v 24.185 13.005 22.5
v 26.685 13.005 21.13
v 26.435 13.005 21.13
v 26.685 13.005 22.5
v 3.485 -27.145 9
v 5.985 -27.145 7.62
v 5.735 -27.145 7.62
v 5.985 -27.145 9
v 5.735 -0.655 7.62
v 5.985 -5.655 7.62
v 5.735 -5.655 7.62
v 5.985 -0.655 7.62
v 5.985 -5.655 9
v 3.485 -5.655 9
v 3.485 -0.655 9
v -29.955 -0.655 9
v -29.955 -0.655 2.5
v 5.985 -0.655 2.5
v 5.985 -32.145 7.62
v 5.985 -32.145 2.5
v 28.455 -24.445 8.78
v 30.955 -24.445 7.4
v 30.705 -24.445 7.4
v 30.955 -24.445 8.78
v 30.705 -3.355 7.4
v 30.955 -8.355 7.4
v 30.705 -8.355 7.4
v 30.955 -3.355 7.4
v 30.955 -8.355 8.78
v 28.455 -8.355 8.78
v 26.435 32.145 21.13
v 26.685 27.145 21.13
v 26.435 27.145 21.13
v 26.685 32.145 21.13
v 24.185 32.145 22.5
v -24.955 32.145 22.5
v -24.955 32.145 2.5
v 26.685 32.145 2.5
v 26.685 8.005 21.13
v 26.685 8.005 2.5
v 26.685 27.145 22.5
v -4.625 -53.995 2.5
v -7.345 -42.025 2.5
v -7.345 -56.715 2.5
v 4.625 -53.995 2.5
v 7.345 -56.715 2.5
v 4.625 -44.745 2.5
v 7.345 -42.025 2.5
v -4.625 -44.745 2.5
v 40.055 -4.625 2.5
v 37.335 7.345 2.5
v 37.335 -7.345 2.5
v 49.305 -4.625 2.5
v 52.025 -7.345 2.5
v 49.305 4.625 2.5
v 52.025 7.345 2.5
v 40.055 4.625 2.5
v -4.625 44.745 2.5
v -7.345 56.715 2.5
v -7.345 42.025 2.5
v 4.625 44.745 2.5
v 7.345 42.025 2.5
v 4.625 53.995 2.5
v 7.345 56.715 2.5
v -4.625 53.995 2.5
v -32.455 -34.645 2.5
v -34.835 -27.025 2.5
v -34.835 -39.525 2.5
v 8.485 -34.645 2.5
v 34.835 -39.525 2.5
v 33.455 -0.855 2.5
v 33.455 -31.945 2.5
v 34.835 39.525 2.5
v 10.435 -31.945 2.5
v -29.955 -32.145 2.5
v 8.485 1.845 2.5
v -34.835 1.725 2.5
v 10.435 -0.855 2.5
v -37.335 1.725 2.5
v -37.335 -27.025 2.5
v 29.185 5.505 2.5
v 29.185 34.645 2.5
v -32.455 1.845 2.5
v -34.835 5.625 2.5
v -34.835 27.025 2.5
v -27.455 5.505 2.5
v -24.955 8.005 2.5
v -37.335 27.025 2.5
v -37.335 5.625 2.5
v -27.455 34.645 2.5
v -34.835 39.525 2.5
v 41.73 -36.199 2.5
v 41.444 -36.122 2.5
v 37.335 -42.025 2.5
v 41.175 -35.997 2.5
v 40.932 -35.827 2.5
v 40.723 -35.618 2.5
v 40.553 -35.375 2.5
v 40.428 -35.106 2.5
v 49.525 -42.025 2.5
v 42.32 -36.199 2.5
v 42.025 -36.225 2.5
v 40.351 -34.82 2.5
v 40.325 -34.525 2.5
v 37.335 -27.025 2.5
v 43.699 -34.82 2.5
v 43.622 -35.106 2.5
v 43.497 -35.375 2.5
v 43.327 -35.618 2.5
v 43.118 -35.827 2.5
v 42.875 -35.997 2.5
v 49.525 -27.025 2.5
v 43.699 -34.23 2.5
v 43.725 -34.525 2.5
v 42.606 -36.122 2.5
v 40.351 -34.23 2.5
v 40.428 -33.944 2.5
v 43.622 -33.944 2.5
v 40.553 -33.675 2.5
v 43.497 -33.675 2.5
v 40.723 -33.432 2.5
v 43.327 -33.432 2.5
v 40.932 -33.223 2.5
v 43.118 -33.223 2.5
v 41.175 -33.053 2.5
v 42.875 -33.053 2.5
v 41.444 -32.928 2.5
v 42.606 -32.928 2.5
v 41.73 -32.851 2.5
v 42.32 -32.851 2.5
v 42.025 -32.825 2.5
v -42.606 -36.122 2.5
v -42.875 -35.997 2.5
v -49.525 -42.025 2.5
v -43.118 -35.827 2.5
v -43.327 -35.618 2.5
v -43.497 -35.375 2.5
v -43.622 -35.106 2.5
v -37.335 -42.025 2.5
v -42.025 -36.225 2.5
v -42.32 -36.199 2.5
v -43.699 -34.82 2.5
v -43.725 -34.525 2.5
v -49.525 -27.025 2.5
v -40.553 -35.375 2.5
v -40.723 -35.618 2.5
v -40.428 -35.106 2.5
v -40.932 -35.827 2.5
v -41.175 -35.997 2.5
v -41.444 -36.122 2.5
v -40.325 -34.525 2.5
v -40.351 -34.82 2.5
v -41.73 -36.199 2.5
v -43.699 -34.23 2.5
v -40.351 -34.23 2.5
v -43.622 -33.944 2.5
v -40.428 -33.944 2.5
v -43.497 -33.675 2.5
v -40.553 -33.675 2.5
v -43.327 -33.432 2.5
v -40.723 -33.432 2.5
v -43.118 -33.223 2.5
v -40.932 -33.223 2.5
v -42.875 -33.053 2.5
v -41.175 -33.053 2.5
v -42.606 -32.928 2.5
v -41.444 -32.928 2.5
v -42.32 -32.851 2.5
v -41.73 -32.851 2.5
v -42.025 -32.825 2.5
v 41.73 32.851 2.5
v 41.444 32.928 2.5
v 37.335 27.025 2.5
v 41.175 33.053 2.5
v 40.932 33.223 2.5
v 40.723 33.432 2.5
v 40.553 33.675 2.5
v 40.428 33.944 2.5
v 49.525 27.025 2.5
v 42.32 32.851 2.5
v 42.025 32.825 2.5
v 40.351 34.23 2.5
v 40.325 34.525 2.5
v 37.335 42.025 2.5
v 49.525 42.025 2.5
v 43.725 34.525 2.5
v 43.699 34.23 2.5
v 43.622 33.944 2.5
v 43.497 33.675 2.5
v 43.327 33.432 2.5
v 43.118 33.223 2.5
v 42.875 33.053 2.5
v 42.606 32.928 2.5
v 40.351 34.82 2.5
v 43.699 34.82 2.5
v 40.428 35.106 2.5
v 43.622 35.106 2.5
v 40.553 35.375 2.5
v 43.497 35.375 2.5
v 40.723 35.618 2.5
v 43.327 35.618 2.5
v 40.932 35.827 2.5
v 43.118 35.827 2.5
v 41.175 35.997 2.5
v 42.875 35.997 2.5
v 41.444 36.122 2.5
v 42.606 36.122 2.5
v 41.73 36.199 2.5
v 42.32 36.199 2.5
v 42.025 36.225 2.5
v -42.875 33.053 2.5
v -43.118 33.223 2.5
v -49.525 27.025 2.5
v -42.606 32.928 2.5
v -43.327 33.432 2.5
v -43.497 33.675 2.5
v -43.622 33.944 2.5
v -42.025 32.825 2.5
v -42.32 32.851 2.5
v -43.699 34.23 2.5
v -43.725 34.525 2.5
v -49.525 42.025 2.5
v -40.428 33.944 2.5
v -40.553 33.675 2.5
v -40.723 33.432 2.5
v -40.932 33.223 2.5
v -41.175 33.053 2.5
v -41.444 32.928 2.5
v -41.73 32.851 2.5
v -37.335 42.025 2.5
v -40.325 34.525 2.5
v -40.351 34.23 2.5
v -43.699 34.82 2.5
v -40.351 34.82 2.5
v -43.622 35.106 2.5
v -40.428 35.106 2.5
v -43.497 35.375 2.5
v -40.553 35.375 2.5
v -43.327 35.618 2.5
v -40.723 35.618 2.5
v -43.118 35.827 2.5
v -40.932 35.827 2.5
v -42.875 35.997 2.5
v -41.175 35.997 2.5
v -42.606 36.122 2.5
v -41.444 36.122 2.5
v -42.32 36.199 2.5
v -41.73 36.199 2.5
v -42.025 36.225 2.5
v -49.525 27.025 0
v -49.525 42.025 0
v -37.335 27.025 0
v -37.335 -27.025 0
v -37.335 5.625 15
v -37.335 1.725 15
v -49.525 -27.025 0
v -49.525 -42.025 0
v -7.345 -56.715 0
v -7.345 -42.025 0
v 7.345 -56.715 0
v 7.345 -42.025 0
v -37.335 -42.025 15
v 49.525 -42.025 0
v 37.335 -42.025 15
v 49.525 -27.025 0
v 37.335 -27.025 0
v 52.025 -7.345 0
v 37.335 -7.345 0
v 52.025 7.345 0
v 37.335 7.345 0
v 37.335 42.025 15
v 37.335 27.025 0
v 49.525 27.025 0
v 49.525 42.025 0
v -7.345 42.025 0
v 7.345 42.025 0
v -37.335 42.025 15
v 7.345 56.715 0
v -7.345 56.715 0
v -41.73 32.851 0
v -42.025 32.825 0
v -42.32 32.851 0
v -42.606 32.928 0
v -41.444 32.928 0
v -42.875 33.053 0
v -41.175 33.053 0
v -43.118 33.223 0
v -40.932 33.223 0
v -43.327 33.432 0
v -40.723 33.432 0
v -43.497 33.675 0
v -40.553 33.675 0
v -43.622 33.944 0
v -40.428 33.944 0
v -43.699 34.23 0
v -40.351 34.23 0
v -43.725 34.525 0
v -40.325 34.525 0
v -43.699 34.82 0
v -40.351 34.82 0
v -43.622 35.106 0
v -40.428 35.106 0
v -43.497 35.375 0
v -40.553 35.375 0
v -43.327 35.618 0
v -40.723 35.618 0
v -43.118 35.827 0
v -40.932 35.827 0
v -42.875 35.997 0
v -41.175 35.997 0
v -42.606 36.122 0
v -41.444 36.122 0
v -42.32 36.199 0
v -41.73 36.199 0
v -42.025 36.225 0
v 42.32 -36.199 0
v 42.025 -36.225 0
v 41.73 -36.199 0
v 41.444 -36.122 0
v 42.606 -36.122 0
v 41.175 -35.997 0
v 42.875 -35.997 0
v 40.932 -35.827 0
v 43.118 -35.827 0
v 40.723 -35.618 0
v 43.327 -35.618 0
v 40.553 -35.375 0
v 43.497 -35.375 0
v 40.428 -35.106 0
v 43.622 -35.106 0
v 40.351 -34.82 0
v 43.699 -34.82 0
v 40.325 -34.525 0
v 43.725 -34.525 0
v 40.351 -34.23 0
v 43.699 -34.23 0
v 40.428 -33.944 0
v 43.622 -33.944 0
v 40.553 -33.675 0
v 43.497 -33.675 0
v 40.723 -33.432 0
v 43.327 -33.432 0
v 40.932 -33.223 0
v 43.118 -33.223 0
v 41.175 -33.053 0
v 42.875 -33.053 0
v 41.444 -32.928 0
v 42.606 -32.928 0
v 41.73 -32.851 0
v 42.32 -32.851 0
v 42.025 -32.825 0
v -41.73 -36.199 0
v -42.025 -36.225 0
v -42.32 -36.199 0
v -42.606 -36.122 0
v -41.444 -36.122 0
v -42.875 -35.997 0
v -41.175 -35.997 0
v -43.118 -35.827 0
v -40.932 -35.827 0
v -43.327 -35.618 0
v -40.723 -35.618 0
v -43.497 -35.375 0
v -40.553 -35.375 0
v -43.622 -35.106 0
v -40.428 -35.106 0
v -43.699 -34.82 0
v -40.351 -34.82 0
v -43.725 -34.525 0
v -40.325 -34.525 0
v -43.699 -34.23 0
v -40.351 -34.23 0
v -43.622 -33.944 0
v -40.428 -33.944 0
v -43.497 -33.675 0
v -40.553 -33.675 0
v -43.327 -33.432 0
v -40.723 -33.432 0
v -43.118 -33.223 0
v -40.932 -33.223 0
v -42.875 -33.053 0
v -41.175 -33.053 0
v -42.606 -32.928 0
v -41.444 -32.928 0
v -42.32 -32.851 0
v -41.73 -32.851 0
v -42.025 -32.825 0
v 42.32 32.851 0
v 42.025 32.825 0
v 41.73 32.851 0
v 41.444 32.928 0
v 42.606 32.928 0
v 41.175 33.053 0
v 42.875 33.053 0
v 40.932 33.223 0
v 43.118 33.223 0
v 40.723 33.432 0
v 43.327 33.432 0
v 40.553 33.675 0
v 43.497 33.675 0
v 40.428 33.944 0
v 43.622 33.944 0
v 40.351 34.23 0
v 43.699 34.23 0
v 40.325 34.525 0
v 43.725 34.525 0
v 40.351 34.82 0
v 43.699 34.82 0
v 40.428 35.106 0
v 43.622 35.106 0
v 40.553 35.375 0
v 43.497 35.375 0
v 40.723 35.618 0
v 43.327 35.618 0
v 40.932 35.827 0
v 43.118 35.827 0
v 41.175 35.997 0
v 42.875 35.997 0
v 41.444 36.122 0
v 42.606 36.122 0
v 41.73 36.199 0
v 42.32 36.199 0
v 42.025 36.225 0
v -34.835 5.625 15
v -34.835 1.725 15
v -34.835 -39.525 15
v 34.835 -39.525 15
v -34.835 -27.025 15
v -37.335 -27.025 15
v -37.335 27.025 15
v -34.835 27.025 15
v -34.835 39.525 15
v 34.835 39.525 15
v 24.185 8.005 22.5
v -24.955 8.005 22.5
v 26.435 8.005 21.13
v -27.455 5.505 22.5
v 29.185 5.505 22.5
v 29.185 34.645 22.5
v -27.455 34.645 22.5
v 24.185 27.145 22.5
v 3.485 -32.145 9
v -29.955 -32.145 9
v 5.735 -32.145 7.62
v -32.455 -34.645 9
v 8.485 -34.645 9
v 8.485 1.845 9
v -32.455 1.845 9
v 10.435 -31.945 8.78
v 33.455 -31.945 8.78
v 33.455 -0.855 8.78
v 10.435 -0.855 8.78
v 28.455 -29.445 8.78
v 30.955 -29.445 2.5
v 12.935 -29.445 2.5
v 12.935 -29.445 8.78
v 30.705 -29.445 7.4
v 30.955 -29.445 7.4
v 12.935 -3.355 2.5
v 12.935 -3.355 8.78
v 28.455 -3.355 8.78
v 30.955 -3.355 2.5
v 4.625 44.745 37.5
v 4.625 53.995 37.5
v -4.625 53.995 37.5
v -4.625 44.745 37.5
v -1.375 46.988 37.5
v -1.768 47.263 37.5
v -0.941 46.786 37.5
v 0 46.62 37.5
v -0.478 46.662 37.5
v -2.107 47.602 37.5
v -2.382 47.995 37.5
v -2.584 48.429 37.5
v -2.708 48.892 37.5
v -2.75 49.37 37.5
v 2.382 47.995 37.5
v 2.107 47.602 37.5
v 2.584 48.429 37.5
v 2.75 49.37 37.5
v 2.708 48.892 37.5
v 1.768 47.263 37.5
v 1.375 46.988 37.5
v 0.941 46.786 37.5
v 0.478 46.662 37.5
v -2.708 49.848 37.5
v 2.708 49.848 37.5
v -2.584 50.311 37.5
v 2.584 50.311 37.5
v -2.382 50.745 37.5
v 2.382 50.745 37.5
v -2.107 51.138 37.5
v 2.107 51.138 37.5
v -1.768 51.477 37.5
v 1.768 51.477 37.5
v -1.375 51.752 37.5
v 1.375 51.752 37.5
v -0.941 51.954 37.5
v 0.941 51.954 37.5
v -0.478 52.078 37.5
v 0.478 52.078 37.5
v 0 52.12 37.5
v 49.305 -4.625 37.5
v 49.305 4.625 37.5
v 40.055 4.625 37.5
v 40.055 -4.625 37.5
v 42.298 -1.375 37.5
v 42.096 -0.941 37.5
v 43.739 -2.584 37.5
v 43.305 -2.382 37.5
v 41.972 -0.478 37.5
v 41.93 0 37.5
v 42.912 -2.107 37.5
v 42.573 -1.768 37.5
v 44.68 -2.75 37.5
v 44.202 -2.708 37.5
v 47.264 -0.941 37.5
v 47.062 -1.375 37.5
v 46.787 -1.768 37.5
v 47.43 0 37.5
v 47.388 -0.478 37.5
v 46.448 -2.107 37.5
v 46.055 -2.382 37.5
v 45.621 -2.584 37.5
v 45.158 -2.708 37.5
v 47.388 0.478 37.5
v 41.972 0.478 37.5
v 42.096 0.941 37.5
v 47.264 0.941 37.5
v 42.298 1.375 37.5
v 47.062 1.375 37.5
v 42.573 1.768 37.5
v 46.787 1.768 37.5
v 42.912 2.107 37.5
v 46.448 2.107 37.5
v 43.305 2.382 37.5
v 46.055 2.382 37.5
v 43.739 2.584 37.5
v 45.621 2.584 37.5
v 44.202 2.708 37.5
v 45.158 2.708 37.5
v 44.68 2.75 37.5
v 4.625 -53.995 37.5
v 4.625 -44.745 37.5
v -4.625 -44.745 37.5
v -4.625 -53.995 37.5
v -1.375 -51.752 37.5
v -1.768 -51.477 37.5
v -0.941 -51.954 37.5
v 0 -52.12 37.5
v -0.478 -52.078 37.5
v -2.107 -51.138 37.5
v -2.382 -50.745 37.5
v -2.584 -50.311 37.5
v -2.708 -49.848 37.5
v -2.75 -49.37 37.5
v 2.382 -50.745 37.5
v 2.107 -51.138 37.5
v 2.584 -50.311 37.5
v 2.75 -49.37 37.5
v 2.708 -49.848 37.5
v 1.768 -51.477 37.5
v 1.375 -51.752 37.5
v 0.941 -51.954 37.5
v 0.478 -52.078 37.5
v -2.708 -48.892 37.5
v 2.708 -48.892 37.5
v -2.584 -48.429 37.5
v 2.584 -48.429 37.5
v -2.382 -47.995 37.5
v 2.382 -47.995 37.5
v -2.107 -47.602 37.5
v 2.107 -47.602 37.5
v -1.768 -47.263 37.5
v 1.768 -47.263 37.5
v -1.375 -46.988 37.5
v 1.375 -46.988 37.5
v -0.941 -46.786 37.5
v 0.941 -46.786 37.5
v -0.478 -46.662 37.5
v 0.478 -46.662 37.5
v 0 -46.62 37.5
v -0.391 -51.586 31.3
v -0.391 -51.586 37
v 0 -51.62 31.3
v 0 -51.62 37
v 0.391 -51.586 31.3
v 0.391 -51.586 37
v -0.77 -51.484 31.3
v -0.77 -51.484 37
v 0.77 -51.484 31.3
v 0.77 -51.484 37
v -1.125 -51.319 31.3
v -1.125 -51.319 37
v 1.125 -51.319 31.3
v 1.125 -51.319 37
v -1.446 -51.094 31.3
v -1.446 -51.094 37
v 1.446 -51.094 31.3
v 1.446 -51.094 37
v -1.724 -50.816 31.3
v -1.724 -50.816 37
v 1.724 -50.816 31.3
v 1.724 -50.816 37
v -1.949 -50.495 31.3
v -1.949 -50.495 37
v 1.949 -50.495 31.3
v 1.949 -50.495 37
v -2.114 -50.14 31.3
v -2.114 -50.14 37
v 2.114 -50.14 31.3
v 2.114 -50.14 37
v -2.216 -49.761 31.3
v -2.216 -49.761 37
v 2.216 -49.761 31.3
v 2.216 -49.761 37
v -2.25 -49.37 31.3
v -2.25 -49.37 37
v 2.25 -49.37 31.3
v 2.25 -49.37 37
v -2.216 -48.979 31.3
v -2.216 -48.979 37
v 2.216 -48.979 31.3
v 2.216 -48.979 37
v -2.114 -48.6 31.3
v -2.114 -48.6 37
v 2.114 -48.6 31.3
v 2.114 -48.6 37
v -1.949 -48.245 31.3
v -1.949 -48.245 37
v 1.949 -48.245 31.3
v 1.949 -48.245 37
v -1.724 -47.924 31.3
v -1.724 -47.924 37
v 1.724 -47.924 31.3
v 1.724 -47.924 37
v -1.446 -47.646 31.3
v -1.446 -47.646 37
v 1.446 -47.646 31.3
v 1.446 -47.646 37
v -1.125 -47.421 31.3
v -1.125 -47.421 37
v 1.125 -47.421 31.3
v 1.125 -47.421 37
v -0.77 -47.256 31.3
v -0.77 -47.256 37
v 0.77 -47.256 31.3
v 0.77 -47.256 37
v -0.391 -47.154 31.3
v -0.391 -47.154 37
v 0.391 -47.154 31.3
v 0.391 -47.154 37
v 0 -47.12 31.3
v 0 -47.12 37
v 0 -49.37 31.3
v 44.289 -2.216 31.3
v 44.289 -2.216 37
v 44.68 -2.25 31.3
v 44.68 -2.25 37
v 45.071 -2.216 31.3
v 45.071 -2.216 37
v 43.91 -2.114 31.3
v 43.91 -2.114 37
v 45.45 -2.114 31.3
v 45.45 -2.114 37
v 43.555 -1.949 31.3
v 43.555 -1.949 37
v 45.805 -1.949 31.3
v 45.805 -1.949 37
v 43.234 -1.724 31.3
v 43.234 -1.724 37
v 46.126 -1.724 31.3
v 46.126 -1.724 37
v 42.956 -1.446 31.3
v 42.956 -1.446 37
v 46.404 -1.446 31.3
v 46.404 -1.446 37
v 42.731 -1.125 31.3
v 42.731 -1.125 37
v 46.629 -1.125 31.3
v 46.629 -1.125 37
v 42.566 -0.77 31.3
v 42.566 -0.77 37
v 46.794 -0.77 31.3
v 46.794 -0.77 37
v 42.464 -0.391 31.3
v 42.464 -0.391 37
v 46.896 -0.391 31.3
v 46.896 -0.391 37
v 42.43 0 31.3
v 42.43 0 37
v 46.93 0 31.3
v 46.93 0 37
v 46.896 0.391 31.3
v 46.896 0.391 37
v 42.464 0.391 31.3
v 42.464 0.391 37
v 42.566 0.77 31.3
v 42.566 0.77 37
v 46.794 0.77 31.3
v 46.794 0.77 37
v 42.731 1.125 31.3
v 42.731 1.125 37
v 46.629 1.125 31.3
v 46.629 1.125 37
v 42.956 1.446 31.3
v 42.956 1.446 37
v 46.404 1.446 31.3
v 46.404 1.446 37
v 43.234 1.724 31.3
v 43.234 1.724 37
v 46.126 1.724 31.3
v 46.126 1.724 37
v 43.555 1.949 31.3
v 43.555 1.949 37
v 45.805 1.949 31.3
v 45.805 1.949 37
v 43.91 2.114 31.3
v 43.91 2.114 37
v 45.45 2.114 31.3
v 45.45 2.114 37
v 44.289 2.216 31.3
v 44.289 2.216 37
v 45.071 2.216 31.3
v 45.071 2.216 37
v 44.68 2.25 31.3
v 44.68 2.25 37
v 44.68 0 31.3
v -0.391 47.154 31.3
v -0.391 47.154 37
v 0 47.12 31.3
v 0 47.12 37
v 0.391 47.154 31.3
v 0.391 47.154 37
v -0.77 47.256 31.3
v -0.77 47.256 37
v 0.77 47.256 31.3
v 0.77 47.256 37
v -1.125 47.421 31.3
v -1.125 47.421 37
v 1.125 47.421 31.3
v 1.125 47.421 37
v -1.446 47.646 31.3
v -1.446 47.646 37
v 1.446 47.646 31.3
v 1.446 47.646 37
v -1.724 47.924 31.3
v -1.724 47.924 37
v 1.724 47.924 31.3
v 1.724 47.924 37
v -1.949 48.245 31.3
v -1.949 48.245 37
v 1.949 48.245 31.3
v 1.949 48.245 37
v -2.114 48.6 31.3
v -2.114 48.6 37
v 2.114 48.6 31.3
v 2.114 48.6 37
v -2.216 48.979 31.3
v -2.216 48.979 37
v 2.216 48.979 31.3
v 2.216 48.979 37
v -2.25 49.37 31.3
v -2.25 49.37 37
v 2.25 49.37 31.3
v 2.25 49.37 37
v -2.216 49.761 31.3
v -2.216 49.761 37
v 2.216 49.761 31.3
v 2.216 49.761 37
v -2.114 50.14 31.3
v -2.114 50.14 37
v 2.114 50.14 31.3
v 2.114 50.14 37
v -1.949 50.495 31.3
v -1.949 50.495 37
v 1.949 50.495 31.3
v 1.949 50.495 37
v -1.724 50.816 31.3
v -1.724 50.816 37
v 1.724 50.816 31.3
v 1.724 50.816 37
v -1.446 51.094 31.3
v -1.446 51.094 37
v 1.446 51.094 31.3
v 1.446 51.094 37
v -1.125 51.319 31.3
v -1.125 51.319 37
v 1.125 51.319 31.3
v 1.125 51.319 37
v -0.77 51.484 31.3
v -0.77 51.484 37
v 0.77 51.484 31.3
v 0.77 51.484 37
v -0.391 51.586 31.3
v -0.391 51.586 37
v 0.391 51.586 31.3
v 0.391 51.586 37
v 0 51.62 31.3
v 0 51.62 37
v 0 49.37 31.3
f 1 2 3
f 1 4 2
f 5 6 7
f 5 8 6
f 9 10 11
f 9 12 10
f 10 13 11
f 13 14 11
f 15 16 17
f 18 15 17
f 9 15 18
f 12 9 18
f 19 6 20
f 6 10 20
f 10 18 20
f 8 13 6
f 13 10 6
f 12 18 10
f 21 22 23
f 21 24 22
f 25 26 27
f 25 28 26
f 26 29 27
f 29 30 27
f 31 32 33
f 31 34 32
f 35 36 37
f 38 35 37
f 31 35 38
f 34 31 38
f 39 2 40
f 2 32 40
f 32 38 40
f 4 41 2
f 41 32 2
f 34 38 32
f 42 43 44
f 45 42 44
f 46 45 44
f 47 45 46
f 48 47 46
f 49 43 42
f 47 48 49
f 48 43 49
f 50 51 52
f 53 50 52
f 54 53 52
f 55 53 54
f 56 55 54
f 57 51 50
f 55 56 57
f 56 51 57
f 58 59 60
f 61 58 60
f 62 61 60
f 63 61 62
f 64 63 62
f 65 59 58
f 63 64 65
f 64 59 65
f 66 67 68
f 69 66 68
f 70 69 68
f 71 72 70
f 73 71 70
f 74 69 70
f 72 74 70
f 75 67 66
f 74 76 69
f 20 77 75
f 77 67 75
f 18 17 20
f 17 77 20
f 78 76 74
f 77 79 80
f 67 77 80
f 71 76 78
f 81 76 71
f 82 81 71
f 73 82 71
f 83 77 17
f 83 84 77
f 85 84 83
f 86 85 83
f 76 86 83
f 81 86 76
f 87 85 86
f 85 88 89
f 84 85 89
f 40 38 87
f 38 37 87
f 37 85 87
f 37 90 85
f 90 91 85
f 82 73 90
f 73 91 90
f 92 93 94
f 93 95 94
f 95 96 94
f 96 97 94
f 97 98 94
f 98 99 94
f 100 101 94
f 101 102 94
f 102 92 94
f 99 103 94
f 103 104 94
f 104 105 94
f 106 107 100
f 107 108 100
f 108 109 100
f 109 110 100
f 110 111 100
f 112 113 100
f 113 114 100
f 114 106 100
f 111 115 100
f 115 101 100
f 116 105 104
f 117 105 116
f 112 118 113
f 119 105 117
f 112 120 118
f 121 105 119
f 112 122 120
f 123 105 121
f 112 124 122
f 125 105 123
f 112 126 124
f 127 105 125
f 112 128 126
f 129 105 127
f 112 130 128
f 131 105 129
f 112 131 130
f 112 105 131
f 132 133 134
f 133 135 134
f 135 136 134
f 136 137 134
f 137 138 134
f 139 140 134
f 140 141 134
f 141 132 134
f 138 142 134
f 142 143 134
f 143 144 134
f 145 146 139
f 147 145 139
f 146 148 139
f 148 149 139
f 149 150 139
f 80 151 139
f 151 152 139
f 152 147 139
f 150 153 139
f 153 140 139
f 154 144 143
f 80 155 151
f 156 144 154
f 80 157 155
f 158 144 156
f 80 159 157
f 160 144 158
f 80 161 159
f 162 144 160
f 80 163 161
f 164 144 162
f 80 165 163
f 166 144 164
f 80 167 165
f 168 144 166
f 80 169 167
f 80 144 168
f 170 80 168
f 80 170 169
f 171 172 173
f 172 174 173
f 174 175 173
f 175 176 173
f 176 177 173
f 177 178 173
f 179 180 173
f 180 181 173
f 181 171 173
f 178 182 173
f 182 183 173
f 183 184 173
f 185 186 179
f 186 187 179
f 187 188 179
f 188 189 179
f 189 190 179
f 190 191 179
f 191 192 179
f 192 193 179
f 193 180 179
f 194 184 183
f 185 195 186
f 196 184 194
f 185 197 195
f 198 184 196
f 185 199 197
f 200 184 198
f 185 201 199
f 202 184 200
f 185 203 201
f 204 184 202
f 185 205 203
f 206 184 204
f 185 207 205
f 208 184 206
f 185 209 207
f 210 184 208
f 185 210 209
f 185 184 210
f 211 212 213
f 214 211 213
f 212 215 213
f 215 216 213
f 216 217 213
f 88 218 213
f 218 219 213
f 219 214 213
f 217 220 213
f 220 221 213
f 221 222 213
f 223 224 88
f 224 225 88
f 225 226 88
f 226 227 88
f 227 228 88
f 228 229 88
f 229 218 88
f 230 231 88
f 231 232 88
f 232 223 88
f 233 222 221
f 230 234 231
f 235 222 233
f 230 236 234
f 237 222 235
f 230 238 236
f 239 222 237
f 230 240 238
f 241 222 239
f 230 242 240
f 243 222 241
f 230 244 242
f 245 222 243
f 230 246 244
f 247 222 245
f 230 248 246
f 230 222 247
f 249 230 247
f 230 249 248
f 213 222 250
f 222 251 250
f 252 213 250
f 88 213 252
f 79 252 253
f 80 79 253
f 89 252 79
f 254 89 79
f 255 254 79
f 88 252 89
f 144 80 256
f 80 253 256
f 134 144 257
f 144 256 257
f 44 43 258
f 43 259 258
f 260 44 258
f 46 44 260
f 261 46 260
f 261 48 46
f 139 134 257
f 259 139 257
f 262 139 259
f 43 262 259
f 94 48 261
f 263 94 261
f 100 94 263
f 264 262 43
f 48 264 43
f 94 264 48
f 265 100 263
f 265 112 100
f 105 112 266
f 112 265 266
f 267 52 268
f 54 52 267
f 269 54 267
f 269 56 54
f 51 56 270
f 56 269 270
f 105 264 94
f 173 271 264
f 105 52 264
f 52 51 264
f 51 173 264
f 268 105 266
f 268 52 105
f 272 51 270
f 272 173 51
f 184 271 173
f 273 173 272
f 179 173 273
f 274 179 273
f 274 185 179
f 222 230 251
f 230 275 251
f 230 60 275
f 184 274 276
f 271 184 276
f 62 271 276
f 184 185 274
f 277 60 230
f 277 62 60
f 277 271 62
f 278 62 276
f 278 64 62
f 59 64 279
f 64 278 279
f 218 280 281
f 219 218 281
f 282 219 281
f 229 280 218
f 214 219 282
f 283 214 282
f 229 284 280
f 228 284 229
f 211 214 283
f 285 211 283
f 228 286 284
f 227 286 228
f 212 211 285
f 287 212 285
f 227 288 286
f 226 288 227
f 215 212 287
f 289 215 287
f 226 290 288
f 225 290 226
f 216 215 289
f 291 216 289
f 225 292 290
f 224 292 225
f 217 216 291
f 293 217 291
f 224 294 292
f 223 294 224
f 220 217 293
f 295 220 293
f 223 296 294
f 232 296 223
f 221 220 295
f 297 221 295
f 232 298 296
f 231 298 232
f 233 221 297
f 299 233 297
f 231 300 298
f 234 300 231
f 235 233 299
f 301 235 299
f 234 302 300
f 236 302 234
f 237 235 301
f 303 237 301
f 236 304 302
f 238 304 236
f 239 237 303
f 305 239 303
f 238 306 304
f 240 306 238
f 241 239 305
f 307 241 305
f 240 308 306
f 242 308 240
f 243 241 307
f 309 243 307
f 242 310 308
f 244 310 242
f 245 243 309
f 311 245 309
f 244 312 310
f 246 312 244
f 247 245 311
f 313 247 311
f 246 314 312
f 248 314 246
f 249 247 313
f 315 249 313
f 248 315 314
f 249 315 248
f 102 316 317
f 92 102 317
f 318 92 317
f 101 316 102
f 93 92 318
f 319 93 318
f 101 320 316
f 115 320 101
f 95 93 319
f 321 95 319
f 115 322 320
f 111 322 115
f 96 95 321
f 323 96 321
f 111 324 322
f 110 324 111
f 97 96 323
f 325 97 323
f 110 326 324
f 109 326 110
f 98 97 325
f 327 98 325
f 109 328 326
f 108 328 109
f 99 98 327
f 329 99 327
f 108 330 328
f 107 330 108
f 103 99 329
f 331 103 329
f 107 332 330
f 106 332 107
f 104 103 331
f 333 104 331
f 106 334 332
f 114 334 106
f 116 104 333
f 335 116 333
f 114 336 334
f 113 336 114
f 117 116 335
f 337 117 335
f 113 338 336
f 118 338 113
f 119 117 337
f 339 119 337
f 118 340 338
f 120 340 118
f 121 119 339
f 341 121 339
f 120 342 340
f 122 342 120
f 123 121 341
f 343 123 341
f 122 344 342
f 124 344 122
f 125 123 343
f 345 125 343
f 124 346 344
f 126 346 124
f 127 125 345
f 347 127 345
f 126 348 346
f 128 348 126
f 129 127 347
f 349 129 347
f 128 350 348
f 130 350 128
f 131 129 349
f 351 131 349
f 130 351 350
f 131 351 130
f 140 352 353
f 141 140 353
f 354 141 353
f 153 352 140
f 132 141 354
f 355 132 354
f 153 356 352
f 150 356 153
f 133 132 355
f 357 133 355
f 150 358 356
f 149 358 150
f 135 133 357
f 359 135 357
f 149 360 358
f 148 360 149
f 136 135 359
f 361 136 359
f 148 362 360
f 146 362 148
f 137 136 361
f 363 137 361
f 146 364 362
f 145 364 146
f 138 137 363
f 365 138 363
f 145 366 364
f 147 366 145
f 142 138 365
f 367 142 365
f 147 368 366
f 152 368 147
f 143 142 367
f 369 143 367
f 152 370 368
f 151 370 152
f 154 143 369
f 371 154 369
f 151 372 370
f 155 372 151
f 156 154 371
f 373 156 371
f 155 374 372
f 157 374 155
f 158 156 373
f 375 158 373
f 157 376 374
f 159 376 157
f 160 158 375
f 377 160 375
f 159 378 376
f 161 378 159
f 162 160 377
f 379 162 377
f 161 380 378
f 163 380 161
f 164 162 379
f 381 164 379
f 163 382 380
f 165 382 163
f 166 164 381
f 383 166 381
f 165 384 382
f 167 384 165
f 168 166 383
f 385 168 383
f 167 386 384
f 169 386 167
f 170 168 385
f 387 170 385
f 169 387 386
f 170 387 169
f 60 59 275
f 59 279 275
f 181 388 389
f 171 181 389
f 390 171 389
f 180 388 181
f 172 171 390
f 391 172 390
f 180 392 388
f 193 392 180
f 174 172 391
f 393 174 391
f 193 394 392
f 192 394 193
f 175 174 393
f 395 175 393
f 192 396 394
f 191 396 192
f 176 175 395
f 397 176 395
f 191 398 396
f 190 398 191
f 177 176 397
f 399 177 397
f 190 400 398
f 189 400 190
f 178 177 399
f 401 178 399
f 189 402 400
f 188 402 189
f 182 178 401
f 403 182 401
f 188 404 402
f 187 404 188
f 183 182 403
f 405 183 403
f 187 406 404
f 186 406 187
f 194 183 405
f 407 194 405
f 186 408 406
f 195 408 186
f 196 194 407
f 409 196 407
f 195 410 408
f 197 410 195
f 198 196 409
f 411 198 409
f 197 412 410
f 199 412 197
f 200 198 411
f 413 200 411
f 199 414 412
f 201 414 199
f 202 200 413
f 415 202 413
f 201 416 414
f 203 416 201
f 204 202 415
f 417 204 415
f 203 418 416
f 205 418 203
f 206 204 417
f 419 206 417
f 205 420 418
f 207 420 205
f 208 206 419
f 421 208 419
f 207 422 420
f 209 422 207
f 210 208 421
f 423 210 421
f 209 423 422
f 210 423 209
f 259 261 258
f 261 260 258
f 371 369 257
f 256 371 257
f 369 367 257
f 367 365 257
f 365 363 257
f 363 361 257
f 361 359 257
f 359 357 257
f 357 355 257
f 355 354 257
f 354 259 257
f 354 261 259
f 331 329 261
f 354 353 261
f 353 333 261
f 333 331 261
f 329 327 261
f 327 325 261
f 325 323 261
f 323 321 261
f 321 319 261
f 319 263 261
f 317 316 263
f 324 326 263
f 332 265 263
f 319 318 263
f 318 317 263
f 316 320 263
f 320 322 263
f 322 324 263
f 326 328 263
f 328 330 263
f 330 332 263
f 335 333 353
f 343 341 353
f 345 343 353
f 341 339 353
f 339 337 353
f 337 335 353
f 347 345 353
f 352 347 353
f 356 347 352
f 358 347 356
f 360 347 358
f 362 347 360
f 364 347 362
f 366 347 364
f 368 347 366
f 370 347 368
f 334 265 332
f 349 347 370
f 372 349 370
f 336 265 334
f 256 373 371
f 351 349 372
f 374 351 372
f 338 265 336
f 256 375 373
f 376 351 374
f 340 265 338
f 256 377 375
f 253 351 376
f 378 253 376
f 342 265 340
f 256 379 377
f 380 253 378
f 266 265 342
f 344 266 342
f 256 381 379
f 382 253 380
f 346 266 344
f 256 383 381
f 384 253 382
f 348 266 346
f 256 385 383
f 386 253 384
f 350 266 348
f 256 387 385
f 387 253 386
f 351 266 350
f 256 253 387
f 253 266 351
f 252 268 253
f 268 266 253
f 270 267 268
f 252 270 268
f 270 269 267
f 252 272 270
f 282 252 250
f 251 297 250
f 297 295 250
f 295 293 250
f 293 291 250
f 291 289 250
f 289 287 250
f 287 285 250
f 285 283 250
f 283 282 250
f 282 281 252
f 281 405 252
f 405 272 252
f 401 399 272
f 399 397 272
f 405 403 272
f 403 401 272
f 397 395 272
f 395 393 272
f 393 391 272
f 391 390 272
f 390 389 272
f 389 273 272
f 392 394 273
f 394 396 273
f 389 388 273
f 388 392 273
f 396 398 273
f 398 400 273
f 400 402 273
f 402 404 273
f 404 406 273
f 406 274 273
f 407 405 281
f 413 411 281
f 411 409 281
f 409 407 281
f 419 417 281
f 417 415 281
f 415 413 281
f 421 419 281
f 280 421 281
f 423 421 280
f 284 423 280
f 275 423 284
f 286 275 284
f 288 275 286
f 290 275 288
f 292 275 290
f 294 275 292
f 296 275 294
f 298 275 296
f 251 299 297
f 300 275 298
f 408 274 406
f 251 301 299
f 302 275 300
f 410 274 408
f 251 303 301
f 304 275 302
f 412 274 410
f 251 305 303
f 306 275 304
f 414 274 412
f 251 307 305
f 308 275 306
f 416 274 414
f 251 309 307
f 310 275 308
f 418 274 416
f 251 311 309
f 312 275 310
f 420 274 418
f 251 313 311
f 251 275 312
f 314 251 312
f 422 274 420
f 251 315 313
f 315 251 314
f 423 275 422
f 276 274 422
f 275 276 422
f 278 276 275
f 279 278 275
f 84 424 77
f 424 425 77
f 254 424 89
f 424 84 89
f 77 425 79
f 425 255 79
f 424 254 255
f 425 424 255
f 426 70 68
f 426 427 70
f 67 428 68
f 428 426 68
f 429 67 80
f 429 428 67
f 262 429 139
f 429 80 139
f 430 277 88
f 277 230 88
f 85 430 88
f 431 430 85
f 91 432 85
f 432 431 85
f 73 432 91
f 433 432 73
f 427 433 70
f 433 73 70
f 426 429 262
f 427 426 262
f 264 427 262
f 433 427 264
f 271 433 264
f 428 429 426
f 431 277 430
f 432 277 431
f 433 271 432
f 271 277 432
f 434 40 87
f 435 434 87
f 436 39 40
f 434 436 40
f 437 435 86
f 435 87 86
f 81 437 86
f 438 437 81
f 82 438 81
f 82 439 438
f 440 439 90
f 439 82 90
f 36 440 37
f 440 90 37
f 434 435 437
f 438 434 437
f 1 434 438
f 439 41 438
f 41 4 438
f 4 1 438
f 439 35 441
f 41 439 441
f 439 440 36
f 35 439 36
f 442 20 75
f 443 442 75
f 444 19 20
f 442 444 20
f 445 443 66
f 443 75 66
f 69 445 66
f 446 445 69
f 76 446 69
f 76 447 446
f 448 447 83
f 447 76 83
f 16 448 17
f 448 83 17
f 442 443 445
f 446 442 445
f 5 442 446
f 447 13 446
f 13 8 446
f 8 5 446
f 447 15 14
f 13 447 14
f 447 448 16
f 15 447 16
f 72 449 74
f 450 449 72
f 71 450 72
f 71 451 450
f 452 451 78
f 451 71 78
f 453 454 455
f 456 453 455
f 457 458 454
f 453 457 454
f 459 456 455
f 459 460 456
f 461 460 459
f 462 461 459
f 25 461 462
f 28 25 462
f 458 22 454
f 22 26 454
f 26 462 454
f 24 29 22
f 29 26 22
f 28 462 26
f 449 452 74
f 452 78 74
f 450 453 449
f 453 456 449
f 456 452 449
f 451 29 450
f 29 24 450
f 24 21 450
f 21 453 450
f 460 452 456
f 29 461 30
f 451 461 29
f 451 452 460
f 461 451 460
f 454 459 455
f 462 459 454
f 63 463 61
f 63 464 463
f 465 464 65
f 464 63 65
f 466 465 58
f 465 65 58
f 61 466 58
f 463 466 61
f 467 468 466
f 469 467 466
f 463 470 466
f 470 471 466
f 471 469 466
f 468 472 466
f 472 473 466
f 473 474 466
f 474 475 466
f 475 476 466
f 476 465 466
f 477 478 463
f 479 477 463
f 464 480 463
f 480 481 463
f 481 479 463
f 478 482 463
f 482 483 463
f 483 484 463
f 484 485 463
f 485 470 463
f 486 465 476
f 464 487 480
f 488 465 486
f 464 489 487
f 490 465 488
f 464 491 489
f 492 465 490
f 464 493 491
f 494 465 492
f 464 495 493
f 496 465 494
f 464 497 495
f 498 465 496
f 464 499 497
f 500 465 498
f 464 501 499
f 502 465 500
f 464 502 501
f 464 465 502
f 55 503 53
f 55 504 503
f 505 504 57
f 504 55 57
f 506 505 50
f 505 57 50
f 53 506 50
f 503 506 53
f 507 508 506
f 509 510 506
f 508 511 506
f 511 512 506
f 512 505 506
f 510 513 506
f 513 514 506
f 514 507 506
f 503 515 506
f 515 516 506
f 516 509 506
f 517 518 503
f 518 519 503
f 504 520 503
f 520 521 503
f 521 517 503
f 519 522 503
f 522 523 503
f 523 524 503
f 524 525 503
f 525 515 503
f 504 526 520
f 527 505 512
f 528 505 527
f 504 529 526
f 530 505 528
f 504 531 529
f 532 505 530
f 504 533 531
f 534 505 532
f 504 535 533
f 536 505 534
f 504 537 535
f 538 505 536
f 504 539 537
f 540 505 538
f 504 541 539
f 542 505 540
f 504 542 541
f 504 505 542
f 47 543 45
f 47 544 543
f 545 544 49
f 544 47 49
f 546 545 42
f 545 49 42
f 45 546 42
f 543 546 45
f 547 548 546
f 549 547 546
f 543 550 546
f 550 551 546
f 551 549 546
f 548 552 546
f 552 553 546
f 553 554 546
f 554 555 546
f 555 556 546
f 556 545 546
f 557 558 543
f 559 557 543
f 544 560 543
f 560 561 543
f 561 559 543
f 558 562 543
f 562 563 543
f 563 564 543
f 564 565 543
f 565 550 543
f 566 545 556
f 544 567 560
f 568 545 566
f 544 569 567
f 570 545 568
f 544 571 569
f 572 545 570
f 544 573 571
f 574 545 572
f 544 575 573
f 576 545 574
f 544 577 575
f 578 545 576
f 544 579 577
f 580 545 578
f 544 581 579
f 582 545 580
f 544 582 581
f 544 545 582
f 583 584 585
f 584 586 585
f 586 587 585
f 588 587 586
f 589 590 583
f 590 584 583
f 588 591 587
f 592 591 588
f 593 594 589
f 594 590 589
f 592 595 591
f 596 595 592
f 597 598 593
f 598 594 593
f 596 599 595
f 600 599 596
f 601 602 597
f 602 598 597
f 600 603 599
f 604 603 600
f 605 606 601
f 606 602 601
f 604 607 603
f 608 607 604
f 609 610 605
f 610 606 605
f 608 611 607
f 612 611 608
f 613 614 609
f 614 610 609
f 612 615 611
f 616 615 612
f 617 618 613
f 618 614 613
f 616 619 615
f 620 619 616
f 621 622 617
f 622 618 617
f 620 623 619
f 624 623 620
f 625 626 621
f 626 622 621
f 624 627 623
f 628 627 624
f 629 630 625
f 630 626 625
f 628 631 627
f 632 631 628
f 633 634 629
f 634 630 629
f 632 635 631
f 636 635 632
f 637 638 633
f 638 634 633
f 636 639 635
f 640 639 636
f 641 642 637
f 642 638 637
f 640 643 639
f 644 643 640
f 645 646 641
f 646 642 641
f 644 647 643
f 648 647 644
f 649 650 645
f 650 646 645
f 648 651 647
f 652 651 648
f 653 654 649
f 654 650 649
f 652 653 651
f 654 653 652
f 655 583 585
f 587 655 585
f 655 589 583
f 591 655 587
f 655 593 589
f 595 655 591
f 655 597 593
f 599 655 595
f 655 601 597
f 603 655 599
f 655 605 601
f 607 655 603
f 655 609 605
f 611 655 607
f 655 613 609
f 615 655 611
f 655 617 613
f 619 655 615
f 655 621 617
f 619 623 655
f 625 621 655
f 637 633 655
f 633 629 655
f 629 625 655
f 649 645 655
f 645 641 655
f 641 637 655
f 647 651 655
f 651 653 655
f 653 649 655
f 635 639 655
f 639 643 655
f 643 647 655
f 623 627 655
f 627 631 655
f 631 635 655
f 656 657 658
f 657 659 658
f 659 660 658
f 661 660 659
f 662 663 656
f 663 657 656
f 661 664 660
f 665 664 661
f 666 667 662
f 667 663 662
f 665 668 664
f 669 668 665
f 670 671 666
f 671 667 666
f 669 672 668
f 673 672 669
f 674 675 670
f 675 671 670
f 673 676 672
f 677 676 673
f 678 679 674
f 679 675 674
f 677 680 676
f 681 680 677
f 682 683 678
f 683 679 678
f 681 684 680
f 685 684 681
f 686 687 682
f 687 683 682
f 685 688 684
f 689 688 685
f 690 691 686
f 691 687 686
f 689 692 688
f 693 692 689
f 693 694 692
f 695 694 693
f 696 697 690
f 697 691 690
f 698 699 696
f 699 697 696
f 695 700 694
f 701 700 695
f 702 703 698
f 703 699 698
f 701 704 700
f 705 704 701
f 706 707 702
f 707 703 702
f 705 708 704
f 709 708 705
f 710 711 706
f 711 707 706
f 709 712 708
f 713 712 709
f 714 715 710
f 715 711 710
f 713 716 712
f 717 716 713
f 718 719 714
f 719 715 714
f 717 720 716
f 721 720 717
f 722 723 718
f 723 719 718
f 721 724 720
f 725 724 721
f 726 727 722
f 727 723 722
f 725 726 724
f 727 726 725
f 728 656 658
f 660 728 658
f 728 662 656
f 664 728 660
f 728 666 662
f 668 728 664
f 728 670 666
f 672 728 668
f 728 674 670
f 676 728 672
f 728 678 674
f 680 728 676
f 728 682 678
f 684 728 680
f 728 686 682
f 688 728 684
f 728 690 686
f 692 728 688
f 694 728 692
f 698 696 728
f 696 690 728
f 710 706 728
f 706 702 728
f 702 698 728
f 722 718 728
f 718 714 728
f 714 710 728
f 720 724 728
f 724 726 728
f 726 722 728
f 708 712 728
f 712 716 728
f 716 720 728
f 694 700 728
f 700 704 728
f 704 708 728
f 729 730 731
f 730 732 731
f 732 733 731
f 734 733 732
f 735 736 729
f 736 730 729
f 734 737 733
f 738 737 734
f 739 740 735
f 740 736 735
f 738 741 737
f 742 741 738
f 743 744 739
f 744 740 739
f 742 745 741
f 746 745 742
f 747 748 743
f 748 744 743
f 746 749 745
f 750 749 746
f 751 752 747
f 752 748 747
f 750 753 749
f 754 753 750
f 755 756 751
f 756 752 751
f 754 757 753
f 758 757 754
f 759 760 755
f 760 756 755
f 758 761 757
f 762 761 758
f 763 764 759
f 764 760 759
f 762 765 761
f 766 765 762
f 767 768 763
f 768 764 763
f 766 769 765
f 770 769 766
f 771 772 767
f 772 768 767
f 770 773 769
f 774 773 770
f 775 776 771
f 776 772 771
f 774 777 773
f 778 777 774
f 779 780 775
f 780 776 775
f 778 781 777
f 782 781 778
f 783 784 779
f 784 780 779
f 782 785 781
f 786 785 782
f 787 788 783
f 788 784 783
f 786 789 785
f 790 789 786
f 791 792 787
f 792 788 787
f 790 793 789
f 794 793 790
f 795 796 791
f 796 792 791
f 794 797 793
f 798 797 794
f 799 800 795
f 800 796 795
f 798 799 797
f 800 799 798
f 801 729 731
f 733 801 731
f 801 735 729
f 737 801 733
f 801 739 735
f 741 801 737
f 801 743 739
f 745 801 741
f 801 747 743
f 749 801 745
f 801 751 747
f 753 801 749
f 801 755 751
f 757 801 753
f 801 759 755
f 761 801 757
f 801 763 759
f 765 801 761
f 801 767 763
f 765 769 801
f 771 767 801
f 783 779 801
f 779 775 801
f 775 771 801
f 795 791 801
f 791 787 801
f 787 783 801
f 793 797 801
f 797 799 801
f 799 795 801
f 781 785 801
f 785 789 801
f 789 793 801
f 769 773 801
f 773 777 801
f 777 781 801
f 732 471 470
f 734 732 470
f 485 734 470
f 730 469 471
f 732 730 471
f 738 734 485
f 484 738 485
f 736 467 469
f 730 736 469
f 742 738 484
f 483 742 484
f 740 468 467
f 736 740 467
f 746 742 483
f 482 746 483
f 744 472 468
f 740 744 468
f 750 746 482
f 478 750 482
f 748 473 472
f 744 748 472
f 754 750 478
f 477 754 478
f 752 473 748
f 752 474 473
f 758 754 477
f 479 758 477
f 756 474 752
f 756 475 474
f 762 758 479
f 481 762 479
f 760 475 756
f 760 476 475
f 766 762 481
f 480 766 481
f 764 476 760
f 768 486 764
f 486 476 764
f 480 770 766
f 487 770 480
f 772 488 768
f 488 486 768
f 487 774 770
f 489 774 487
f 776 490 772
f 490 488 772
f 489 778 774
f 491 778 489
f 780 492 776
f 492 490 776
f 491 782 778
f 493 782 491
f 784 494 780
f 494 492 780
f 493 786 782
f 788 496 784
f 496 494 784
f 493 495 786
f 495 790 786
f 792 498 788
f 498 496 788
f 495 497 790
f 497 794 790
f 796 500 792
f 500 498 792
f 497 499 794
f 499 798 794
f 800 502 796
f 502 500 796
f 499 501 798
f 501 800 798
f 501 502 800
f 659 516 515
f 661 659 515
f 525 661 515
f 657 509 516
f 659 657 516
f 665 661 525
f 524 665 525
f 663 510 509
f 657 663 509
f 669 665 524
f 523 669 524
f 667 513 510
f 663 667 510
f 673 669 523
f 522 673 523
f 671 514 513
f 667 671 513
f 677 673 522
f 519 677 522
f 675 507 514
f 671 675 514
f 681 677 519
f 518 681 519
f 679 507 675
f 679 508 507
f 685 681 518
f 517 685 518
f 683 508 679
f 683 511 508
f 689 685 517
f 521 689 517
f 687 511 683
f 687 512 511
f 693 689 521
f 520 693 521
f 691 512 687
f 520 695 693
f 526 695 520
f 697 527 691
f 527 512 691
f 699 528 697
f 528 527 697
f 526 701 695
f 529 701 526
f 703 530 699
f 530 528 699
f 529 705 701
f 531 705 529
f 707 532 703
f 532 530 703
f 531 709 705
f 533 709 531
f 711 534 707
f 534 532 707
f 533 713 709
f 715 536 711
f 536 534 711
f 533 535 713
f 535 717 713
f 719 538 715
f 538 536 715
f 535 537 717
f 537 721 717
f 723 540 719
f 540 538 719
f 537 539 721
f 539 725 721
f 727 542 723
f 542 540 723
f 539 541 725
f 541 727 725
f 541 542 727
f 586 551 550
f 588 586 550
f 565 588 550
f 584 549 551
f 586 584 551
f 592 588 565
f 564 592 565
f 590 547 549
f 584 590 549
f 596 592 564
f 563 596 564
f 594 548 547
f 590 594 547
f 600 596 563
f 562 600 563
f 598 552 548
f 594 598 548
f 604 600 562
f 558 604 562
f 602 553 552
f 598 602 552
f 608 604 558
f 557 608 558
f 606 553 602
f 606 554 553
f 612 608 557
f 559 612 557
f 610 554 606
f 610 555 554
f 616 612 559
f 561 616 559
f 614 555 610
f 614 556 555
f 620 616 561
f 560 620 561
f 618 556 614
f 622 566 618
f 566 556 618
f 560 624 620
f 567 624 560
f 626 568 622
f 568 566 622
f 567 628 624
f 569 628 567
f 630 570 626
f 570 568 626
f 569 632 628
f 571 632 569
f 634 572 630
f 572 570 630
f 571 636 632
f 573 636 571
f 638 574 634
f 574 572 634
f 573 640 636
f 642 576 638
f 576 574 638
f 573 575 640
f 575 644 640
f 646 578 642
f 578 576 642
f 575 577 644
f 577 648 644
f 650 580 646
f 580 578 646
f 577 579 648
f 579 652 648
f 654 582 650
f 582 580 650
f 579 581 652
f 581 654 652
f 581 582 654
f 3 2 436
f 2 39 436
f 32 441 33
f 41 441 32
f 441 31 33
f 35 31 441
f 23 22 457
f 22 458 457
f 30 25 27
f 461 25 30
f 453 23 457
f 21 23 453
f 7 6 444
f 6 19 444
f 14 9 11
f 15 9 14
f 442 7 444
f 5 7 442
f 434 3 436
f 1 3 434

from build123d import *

# Parameters (mm, degrees)
SKETCH1_R            = 1.7
BOSS_EXTRUDE1_DEPTH  = 2.5
SKETCH1_6_W          = 2.5
SKETCH1_6_H          = 3.9
SKETCH1_6_H_2        = 7.5
BOSS_EXTRUDE3_DEPTH  = 15
BOSS_EXTRUDE8_DEPTH  = 20
BOSS_EXTRUDE9_DEPTH  = 6.5
SKETCH6_9_W          = 23.02
SKETCH6_9_H          = 31.09
SKETCH6_9_W_2        = 18.02
SKETCH6_9_H_2        = 26.09
BOSS_EXTRUDE13_DEPTH = 6.28
SKETCH7_W            = 9.25
SKETCH7_H            = 9.25
BOSS_EXTRUDE14_DEPTH = 35
SKETCH8_R            = 2.25
CUT_EXTRUDE1_DEPTH   = 6.2
CHAMFER1_SIZE        = 0.5
SKETCH9_W            = 1.37
SKETCH9_H            = 5
BOSS_EXTRUDE15_DEPTH = 2.5
CUT_EXTRUDE2_DEPTH   = 5
SKETCH12_W           = 1.38
SKETCH12_H           = 5
BOSS_EXTRUDE16_DEPTH = 2.5
CUT_EXTRUDE3_DEPTH   = 5
CUT_EXTRUDE4_DEPTH   = 5
SKETCH15_W           = 1.38
SKETCH15_H           = 5
BOSS_EXTRUDE17_DEPTH = 2.5
CUT_EXTRUDE5_DEPTH   = 5
CUT_EXTRUDE6_DEPTH   = 5
CUT_EXTRUDE7_DEPTH   = 5


with BuildPart() as part:
    # Sketch1 → Boss-Extrude1 (new body)
    with BuildSketch(Plane.XY):
        Polygon((-49.525, 42.025), (-49.525, 27.025), (-37.335, 27.025), (-37.335, -27.025), (-49.525, -27.025), (-49.525, -42.025), (-7.345, -42.025), (-7.345, -56.715), (7.345, -56.715), (7.345, -42.025), (49.525, -42.025), (49.525, -27.025), (37.335, -27.025), (37.335, -7.345), (52.025, -7.345), (52.025, 7.345), (37.335, 7.345), (37.335, 27.025), (49.525, 27.025), (49.525, 42.025), (7.345, 42.025), (7.345, 56.715), (-7.345, 56.715), (-7.345, 42.025), align=None)
        with Locations((-42.025, -34.525)):
            Circle(SKETCH1_R, mode=Mode.SUBTRACT)
        with Locations((42.025, -34.525)):
            Circle(SKETCH1_R, mode=Mode.SUBTRACT)
        with Locations((-42.025, 34.525)):
            Circle(SKETCH1_R, mode=Mode.SUBTRACT)
        with Locations((42.025, 34.525)):
            Circle(SKETCH1_R, mode=Mode.SUBTRACT)
    extrude(amount=BOSS_EXTRUDE1_DEPTH)

    # Sketch1<6> → Boss-Extrude3 (add)
    with BuildSketch(Plane.XY):
        Polygon((-34.525, -39.525), (-34.525, -42.025), (-7.345, -42.025), (7.345, -42.025), (34.525, -42.025), (34.525, -39.525), align=None)
        Polygon((-34.525, 39.525), (34.525, 39.525), (34.525, 42.025), (7.345, 42.025), (-7.345, 42.025), (-34.525, 42.025), align=None)
        Polygon((34.835, 27.025), (34.835, -27.025), (37.335, -27.025), (37.335, -7.345), (37.335, 7.345), (37.335, 27.025), align=None)
        with Locations((-36.085, 3.675)):
            Rectangle(SKETCH1_6_W, SKETCH1_6_H)
        Polygon((34.835, 39.525), (34.835, 27.025), (37.335, 27.025), (37.335, 42.025), (34.525, 42.025), (34.525, 39.525), align=None)
        Polygon((34.835, -39.525), (34.525, -39.525), (34.525, -42.025), (37.335, -42.025), (37.335, -27.025), (34.835, -27.025), align=None)
        Polygon((-37.335, -34.525), (-37.335, -42.025), (-34.525, -42.025), (-34.525, -39.525), (-34.835, -39.525), (-34.835, -34.525), align=None)
        Polygon((-37.335, -34.182141508), (-37.335, -34.525), (-34.835, -34.525), (-34.835, -27.025), (-37.335, -27.025), align=None)
        with Locations((-36.085, 30.775)):
            Rectangle(SKETCH1_6_W, SKETCH1_6_H_2)
        Polygon((-37.335, 34.525), (-34.835, 34.525), (-34.835, 39.525), (-34.525, 39.525), (-34.525, 42.025), (-37.335, 42.025), align=None)
    extrude(amount=BOSS_EXTRUDE3_DEPTH)

    # Sketch6 → Boss-Extrude8 (add)
    with BuildSketch(Plane.XY.offset(2.5)):
        Polygon((26.685, 32.145), (-24.955, 32.145), (-27.455, 34.645), (29.185, 34.645), (29.185, 5.505), (-27.455, 5.505), (-24.955, 8.005), (26.685, 8.005), align=None)
    extrude(amount=BOSS_EXTRUDE8_DEPTH)

    # Sketch6<4> → Boss-Extrude9 (add)
    with BuildSketch(Plane.XY.offset(2.5)):
        Polygon((5.985, -0.655), (-29.955, -0.655), (-32.455, 1.845), (8.485, 1.845), (8.485, -34.645), (-32.455, -34.645), (-29.955, -32.145), (5.985, -32.145), align=None)
    extrude(amount=BOSS_EXTRUDE9_DEPTH)

    # Sketch6<9> → Boss-Extrude13 (add)
    with BuildSketch(Plane.XY.offset(2.5)):
        with Locations((21.945, -16.4)):
            Rectangle(SKETCH6_9_W, SKETCH6_9_H)
        with Locations((21.945, -16.4)):
            Rectangle(SKETCH6_9_W_2, SKETCH6_9_H_2, mode=Mode.SUBTRACT)
    extrude(amount=BOSS_EXTRUDE13_DEPTH)

    # Sketch7 → Boss-Extrude14 (add)
    with BuildSketch(Plane.XY.offset(2.5)):
        with Locations((0, 49.37)):
            Rectangle(SKETCH7_W, SKETCH7_H)
        with Locations((44.68, 0)):
            Rectangle(SKETCH7_W, SKETCH7_H)
        with Locations((0, -49.37)):
            Rectangle(SKETCH7_W, SKETCH7_H)
    extrude(amount=BOSS_EXTRUDE14_DEPTH)

    # Sketch8 → Cut-Extrude1 (cut)
    with BuildSketch(Plane.XY.offset(37.5)):
        with Locations((0, -49.37)):
            Circle(SKETCH8_R)
        with Locations((44.68, 0)):
            Circle(SKETCH8_R)
        with Locations((0, 49.37)):
            Circle(SKETCH8_R)
    extrude(amount=-CUT_EXTRUDE1_DEPTH, mode=Mode.SUBTRACT)

    # Chamfer1
    chamfer1_edges = [part.edges().sort_by_distance(p)[0] for p in [
        (-2.25, -49.37, 37.5),
        (42.43, 0, 37.5),
        (-2.25, 49.37, 37.5),
    ]]
    chamfer(chamfer1_edges, length=CHAMFER1_SIZE)

    # Sketch9 → Boss-Extrude15 (add)
    with BuildSketch(Plane.ZY.offset(-26.685)):
        with Locations((21.815, 29.645)):
            Rectangle(SKETCH9_W, SKETCH9_H)
        with Locations((21.815, 10.505)):
            Rectangle(SKETCH9_W, SKETCH9_H)
    extrude(amount=BOSS_EXTRUDE15_DEPTH)

    # Sketch10 → Cut-Extrude2 (cut)
    with BuildSketch(Plane(origin=(0, 27.145, 0), x_dir=(1, 0, 0), z_dir=(0, 1, 0))):
        Polygon((26.435, -21.13), (24.185, -22.5), (24.185, -21.13), align=None)
    extrude(amount=CUT_EXTRUDE2_DEPTH, mode=Mode.SUBTRACT)

    # Sketch12 → Boss-Extrude16 (add)
    with BuildSketch(Plane.ZY.offset(-30.955)):
        with Locations((8.09, -5.855)):
            Rectangle(SKETCH12_W, SKETCH12_H)
        with Locations((8.09, -26.945)):
            Rectangle(SKETCH12_W, SKETCH12_H)
    extrude(amount=BOSS_EXTRUDE16_DEPTH)

    # Sketch13 → Cut-Extrude3 (cut)
    with BuildSketch(Plane.XZ.offset(8.355)):
        Polygon((30.705, 7.4), (28.455, 8.78), (28.455, 7.4), align=None)
    extrude(amount=-CUT_EXTRUDE3_DEPTH, mode=Mode.SUBTRACT)

    # Sketch14 → Cut-Extrude4 (cut)
    with BuildSketch(Plane(origin=(0, -24.445, 0), x_dir=(1, 0, 0), z_dir=(0, 1, 0))):
        Polygon((30.705, -7.4), (28.455, -8.78), (28.455, -7.4), align=None)
    extrude(amount=-CUT_EXTRUDE4_DEPTH, mode=Mode.SUBTRACT)

    # Sketch15 → Boss-Extrude17 (add)
    with BuildSketch(Plane.ZY.offset(-5.985)):
        with Locations((8.31, -3.155)):
            Rectangle(SKETCH15_W, SKETCH15_H)
        with Locations((8.31, -29.645)):
            Rectangle(SKETCH15_W, SKETCH15_H)
    extrude(amount=BOSS_EXTRUDE17_DEPTH)

    # Sketch16 → Cut-Extrude5 (cut)
    with BuildSketch(Plane.XZ.offset(5.655)):
        Polygon((3.485, 9), (3.485, 7.62), (5.735, 7.62), align=None)
    extrude(amount=-CUT_EXTRUDE5_DEPTH, mode=Mode.SUBTRACT)

    # Sketch17 → Cut-Extrude6 (cut)
    with BuildSketch(Plane(origin=(0, -27.145, 0), x_dir=(1, 0, 0), z_dir=(0, 1, 0))):
        Polygon((3.485, -9), (3.485, -7.62), (5.735, -7.62), align=None)
    extrude(amount=-CUT_EXTRUDE6_DEPTH, mode=Mode.SUBTRACT)

    # Sketch18 → Cut-Extrude7 (cut)
    with BuildSketch(Plane(origin=(0, 13.005, 0), x_dir=(1, 0, 0), z_dir=(0, 1, 0))):
        Polygon((24.185, -22.5), (24.185, -21.13), (26.435, -21.13), align=None)
    extrude(amount=-CUT_EXTRUDE7_DEPTH, mode=Mode.SUBTRACT)


solid = part.part
